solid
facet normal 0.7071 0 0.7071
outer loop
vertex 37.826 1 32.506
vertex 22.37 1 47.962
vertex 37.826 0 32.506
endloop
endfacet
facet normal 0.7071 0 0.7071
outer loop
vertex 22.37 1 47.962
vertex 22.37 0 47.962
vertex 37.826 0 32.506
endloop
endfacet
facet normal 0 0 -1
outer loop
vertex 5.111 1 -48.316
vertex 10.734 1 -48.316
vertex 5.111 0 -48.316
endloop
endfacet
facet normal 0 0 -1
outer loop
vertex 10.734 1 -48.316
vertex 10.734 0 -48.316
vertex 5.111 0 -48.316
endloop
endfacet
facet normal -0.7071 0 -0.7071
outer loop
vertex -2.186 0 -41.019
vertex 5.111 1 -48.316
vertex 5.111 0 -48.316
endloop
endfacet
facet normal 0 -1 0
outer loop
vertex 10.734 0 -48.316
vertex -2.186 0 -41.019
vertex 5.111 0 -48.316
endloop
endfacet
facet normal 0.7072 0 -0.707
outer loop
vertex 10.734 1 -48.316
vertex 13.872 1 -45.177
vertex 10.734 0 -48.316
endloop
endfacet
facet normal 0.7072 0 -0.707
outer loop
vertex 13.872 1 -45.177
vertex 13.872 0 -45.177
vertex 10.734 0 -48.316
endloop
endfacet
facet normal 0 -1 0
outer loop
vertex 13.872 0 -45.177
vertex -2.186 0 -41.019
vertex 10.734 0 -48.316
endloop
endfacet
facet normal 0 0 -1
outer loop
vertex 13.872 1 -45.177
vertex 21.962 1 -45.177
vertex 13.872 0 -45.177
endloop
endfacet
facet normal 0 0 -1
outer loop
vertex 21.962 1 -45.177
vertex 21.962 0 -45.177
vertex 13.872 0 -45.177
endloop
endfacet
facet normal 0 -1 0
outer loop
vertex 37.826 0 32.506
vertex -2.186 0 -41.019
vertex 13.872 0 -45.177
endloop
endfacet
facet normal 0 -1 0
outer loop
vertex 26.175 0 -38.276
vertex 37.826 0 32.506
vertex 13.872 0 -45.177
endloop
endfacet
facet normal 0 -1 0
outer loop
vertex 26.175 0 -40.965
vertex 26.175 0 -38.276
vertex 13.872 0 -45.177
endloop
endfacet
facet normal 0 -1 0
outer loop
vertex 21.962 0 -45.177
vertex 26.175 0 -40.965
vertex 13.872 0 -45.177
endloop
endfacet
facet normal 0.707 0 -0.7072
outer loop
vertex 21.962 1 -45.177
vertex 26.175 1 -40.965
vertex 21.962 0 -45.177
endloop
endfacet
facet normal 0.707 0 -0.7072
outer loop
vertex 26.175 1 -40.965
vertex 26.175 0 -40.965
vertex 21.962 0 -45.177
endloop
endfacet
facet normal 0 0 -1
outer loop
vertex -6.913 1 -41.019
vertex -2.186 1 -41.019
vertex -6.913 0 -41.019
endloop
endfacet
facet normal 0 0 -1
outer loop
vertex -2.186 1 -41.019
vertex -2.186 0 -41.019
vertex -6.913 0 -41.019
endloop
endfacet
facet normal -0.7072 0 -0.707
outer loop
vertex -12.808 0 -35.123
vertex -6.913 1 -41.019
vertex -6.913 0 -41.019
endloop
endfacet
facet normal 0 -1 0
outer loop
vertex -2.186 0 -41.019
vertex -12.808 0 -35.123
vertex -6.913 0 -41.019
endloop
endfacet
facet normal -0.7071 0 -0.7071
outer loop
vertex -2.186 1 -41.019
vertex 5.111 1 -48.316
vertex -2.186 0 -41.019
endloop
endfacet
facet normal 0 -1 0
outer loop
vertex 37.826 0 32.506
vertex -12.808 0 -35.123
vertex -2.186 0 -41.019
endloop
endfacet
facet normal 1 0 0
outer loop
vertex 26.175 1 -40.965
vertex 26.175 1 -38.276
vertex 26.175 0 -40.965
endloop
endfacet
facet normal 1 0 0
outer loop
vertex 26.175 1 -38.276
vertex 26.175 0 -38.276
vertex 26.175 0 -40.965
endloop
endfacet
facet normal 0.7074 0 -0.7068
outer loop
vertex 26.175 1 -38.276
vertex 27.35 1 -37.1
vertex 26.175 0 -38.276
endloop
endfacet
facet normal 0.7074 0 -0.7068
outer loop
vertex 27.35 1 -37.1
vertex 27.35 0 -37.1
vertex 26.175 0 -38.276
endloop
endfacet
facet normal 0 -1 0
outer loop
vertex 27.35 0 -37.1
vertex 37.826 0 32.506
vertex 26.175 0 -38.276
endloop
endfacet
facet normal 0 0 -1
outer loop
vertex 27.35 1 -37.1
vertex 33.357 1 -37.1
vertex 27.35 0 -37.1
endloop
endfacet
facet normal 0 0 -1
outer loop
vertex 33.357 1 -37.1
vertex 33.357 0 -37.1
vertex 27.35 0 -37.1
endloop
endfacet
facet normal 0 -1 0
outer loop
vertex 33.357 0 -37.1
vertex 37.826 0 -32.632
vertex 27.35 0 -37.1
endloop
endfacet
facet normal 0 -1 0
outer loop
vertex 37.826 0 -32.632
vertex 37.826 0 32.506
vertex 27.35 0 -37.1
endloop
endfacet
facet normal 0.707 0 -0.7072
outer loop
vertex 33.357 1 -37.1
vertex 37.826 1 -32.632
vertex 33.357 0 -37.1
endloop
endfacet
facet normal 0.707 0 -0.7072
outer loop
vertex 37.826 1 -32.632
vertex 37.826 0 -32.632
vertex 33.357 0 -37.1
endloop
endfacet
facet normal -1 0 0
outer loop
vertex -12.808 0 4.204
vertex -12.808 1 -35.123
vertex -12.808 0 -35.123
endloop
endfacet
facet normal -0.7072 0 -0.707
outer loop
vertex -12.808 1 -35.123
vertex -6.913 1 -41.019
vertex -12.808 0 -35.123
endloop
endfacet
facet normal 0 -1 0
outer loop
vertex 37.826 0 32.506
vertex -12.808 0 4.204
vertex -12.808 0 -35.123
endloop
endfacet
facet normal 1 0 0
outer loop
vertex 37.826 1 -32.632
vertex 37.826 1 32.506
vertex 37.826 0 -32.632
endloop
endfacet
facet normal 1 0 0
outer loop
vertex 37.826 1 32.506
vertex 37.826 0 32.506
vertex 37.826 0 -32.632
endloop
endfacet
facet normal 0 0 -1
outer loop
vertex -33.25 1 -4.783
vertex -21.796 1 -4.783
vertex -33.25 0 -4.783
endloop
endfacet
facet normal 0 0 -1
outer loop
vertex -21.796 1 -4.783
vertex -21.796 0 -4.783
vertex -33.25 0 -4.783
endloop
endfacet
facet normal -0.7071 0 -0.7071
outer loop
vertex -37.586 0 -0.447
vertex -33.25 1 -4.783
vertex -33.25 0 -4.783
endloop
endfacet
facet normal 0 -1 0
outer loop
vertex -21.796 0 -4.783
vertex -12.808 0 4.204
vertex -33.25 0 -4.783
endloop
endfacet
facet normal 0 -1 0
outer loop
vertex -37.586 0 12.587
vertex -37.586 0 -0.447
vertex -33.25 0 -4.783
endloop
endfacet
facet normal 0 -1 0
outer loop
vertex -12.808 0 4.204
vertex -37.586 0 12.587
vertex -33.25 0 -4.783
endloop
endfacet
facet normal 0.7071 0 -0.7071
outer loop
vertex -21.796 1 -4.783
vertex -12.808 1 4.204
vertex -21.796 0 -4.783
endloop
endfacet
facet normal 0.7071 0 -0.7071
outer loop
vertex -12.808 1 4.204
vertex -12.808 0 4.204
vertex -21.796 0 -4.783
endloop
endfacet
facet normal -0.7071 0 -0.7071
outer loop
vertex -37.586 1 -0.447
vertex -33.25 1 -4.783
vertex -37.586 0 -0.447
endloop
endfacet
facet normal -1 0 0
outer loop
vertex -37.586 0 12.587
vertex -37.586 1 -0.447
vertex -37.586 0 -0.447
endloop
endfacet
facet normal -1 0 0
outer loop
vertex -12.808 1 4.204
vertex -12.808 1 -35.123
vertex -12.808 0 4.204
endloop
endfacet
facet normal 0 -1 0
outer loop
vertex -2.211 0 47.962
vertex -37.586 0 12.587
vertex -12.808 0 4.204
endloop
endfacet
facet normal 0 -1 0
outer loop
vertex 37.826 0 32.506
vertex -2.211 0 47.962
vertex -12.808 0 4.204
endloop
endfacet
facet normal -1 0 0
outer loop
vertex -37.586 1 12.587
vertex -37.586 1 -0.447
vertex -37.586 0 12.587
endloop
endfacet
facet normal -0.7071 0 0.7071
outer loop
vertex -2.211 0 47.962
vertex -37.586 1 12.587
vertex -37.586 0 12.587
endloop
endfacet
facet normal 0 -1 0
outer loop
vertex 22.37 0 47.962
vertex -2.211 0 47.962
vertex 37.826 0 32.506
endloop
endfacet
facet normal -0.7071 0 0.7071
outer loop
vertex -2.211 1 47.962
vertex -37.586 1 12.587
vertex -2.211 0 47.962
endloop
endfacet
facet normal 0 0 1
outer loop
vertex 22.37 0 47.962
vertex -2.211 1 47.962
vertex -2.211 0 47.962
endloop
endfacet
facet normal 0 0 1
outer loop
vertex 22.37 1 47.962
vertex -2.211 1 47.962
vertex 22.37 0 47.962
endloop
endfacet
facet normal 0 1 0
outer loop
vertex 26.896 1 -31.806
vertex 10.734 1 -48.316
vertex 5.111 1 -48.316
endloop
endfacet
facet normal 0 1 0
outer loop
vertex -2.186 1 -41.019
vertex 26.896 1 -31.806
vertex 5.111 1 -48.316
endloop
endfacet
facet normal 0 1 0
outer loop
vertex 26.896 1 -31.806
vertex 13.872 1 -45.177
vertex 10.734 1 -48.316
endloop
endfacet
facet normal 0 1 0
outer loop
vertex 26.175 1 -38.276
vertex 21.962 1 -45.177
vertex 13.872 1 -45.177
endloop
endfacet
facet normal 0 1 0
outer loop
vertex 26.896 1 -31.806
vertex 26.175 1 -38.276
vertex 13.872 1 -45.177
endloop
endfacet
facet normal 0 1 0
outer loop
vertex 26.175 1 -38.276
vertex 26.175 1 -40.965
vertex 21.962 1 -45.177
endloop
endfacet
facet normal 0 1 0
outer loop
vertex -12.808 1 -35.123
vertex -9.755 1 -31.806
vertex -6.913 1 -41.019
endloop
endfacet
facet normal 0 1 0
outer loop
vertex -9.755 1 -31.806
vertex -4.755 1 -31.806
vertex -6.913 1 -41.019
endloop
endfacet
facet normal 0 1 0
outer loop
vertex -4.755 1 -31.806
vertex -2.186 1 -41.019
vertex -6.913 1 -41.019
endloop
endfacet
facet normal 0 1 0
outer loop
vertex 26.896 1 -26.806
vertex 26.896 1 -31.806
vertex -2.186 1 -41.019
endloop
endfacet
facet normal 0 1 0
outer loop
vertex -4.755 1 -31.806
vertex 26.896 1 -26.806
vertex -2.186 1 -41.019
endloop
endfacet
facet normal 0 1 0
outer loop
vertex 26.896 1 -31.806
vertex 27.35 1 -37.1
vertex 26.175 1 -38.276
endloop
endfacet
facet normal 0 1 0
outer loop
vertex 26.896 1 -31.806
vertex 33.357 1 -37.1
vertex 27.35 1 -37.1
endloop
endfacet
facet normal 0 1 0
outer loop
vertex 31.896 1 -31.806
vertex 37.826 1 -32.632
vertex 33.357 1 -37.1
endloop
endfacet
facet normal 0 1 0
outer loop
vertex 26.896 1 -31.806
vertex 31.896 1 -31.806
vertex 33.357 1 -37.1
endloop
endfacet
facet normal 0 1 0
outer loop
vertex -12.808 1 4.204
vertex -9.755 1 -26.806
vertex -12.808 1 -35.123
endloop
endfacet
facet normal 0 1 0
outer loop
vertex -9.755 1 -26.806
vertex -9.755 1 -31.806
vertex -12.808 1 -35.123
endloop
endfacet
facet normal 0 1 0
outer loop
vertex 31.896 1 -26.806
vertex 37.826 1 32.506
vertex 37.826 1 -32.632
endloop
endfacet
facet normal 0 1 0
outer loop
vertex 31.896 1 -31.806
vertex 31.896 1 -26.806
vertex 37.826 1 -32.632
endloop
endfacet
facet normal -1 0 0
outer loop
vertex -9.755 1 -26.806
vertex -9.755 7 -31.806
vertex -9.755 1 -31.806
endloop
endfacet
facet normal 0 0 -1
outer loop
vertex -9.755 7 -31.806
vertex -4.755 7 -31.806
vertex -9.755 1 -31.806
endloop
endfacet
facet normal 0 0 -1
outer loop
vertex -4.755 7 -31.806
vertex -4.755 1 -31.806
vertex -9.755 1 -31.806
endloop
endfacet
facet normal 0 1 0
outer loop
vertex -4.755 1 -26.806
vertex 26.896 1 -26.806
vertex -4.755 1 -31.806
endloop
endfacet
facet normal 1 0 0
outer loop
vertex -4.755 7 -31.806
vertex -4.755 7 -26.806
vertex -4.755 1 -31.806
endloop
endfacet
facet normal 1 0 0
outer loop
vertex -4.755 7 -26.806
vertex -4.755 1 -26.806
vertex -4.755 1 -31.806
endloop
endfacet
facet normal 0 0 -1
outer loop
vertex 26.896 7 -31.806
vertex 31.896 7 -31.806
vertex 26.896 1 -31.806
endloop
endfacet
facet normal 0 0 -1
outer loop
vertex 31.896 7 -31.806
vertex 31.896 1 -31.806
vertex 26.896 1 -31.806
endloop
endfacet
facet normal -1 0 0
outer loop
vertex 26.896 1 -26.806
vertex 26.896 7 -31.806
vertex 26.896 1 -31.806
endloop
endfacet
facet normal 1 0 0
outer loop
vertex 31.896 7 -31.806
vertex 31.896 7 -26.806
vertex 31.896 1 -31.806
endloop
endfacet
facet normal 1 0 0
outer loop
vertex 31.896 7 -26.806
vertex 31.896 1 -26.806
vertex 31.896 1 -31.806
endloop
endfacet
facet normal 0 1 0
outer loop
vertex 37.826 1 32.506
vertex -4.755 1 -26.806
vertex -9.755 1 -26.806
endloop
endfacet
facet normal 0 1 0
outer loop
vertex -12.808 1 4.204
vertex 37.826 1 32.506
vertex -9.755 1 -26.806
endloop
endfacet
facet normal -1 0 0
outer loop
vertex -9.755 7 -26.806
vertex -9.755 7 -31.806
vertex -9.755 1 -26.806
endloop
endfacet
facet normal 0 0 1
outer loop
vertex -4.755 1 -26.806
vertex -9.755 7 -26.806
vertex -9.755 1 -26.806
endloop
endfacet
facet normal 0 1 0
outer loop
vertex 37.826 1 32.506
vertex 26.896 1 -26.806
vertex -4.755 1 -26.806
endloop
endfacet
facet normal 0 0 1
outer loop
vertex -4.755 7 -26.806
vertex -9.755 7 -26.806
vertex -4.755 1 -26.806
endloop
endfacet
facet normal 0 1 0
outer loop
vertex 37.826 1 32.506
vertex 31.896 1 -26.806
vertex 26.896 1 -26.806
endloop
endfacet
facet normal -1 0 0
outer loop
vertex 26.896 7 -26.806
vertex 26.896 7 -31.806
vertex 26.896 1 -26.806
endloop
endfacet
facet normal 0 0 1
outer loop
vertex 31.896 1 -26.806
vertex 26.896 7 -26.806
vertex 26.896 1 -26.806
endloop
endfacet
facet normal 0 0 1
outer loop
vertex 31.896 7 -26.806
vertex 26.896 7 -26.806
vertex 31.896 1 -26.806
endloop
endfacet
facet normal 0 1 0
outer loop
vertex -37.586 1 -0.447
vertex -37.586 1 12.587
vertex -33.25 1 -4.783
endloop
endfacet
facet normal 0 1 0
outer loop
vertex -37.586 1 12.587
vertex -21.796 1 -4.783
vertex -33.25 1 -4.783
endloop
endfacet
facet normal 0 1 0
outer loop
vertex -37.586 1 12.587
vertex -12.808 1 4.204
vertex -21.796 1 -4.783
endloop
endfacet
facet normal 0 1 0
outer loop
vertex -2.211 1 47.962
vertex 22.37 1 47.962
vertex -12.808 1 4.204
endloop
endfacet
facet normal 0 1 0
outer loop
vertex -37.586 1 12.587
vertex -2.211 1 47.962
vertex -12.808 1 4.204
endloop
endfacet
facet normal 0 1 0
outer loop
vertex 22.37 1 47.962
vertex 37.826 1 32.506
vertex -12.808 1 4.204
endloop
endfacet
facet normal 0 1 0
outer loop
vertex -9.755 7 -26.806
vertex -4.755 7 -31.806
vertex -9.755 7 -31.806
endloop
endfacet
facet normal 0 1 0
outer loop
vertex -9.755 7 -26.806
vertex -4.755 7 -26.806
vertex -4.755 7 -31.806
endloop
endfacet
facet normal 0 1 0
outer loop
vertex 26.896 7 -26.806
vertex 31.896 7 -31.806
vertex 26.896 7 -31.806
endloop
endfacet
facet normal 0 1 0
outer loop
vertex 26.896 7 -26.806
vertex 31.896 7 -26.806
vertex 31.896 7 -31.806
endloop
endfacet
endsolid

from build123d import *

# Parameters (mm, degrees)
RESSALTO_EXTRUS_O1_DEPTH = 1
ESBO_O2_W                = 5
ESBO_O2_H                = 5
RESSALTO_EXTRUS_O2_DEPTH = 6


with BuildPart() as part:
    # Esboço1 → Ressalto-extrusão1 (new body)
    with BuildSketch(Plane(origin=(0, 0, 0), x_dir=(1, 0, 0), z_dir=(0, 1, 0))):
        Polygon((-21.795929641, 4.783320054), (-12.808127222, -4.204482365), (-12.808127222, 35.123446913), (-6.91286311, 41.018711025), (-2.185714729, 41.018711025), (5.111319205, 48.315744958), (10.733649893, 48.315744958), (13.872231707, 45.177163144), (21.962429244, 45.177163144), (26.174966365, 40.964626022), (26.174966365, 38.275642193), (27.35031576, 37.100292798), (33.357124102, 37.100292798), (37.825539643, 32.631877257), (37.825539643, -32.506234834), (22.369869311, -47.961905165), (-2.211409105, -47.961905165), (-37.585857198, -12.587457072), (-37.585857198, 0.447182703), (-33.249719847, 4.783320054), align=None)
    extrude(amount=RESSALTO_EXTRUS_O1_DEPTH)

    # Esboço2 → Ressalto-extrusão2 (add)
    with BuildSketch(Plane(origin=(0, 1, 0), x_dir=(1, 0, 0), z_dir=(0, 1, 0))):
        with Locations((29.396408855, 29.306282823)):
            Rectangle(ESBO_O2_W, ESBO_O2_H)
        with Locations((-7.255035982, 29.306282823)):
            Rectangle(ESBO_O2_W, ESBO_O2_H)
    extrude(amount=RESSALTO_EXTRUS_O2_DEPTH)


solid = part.part
